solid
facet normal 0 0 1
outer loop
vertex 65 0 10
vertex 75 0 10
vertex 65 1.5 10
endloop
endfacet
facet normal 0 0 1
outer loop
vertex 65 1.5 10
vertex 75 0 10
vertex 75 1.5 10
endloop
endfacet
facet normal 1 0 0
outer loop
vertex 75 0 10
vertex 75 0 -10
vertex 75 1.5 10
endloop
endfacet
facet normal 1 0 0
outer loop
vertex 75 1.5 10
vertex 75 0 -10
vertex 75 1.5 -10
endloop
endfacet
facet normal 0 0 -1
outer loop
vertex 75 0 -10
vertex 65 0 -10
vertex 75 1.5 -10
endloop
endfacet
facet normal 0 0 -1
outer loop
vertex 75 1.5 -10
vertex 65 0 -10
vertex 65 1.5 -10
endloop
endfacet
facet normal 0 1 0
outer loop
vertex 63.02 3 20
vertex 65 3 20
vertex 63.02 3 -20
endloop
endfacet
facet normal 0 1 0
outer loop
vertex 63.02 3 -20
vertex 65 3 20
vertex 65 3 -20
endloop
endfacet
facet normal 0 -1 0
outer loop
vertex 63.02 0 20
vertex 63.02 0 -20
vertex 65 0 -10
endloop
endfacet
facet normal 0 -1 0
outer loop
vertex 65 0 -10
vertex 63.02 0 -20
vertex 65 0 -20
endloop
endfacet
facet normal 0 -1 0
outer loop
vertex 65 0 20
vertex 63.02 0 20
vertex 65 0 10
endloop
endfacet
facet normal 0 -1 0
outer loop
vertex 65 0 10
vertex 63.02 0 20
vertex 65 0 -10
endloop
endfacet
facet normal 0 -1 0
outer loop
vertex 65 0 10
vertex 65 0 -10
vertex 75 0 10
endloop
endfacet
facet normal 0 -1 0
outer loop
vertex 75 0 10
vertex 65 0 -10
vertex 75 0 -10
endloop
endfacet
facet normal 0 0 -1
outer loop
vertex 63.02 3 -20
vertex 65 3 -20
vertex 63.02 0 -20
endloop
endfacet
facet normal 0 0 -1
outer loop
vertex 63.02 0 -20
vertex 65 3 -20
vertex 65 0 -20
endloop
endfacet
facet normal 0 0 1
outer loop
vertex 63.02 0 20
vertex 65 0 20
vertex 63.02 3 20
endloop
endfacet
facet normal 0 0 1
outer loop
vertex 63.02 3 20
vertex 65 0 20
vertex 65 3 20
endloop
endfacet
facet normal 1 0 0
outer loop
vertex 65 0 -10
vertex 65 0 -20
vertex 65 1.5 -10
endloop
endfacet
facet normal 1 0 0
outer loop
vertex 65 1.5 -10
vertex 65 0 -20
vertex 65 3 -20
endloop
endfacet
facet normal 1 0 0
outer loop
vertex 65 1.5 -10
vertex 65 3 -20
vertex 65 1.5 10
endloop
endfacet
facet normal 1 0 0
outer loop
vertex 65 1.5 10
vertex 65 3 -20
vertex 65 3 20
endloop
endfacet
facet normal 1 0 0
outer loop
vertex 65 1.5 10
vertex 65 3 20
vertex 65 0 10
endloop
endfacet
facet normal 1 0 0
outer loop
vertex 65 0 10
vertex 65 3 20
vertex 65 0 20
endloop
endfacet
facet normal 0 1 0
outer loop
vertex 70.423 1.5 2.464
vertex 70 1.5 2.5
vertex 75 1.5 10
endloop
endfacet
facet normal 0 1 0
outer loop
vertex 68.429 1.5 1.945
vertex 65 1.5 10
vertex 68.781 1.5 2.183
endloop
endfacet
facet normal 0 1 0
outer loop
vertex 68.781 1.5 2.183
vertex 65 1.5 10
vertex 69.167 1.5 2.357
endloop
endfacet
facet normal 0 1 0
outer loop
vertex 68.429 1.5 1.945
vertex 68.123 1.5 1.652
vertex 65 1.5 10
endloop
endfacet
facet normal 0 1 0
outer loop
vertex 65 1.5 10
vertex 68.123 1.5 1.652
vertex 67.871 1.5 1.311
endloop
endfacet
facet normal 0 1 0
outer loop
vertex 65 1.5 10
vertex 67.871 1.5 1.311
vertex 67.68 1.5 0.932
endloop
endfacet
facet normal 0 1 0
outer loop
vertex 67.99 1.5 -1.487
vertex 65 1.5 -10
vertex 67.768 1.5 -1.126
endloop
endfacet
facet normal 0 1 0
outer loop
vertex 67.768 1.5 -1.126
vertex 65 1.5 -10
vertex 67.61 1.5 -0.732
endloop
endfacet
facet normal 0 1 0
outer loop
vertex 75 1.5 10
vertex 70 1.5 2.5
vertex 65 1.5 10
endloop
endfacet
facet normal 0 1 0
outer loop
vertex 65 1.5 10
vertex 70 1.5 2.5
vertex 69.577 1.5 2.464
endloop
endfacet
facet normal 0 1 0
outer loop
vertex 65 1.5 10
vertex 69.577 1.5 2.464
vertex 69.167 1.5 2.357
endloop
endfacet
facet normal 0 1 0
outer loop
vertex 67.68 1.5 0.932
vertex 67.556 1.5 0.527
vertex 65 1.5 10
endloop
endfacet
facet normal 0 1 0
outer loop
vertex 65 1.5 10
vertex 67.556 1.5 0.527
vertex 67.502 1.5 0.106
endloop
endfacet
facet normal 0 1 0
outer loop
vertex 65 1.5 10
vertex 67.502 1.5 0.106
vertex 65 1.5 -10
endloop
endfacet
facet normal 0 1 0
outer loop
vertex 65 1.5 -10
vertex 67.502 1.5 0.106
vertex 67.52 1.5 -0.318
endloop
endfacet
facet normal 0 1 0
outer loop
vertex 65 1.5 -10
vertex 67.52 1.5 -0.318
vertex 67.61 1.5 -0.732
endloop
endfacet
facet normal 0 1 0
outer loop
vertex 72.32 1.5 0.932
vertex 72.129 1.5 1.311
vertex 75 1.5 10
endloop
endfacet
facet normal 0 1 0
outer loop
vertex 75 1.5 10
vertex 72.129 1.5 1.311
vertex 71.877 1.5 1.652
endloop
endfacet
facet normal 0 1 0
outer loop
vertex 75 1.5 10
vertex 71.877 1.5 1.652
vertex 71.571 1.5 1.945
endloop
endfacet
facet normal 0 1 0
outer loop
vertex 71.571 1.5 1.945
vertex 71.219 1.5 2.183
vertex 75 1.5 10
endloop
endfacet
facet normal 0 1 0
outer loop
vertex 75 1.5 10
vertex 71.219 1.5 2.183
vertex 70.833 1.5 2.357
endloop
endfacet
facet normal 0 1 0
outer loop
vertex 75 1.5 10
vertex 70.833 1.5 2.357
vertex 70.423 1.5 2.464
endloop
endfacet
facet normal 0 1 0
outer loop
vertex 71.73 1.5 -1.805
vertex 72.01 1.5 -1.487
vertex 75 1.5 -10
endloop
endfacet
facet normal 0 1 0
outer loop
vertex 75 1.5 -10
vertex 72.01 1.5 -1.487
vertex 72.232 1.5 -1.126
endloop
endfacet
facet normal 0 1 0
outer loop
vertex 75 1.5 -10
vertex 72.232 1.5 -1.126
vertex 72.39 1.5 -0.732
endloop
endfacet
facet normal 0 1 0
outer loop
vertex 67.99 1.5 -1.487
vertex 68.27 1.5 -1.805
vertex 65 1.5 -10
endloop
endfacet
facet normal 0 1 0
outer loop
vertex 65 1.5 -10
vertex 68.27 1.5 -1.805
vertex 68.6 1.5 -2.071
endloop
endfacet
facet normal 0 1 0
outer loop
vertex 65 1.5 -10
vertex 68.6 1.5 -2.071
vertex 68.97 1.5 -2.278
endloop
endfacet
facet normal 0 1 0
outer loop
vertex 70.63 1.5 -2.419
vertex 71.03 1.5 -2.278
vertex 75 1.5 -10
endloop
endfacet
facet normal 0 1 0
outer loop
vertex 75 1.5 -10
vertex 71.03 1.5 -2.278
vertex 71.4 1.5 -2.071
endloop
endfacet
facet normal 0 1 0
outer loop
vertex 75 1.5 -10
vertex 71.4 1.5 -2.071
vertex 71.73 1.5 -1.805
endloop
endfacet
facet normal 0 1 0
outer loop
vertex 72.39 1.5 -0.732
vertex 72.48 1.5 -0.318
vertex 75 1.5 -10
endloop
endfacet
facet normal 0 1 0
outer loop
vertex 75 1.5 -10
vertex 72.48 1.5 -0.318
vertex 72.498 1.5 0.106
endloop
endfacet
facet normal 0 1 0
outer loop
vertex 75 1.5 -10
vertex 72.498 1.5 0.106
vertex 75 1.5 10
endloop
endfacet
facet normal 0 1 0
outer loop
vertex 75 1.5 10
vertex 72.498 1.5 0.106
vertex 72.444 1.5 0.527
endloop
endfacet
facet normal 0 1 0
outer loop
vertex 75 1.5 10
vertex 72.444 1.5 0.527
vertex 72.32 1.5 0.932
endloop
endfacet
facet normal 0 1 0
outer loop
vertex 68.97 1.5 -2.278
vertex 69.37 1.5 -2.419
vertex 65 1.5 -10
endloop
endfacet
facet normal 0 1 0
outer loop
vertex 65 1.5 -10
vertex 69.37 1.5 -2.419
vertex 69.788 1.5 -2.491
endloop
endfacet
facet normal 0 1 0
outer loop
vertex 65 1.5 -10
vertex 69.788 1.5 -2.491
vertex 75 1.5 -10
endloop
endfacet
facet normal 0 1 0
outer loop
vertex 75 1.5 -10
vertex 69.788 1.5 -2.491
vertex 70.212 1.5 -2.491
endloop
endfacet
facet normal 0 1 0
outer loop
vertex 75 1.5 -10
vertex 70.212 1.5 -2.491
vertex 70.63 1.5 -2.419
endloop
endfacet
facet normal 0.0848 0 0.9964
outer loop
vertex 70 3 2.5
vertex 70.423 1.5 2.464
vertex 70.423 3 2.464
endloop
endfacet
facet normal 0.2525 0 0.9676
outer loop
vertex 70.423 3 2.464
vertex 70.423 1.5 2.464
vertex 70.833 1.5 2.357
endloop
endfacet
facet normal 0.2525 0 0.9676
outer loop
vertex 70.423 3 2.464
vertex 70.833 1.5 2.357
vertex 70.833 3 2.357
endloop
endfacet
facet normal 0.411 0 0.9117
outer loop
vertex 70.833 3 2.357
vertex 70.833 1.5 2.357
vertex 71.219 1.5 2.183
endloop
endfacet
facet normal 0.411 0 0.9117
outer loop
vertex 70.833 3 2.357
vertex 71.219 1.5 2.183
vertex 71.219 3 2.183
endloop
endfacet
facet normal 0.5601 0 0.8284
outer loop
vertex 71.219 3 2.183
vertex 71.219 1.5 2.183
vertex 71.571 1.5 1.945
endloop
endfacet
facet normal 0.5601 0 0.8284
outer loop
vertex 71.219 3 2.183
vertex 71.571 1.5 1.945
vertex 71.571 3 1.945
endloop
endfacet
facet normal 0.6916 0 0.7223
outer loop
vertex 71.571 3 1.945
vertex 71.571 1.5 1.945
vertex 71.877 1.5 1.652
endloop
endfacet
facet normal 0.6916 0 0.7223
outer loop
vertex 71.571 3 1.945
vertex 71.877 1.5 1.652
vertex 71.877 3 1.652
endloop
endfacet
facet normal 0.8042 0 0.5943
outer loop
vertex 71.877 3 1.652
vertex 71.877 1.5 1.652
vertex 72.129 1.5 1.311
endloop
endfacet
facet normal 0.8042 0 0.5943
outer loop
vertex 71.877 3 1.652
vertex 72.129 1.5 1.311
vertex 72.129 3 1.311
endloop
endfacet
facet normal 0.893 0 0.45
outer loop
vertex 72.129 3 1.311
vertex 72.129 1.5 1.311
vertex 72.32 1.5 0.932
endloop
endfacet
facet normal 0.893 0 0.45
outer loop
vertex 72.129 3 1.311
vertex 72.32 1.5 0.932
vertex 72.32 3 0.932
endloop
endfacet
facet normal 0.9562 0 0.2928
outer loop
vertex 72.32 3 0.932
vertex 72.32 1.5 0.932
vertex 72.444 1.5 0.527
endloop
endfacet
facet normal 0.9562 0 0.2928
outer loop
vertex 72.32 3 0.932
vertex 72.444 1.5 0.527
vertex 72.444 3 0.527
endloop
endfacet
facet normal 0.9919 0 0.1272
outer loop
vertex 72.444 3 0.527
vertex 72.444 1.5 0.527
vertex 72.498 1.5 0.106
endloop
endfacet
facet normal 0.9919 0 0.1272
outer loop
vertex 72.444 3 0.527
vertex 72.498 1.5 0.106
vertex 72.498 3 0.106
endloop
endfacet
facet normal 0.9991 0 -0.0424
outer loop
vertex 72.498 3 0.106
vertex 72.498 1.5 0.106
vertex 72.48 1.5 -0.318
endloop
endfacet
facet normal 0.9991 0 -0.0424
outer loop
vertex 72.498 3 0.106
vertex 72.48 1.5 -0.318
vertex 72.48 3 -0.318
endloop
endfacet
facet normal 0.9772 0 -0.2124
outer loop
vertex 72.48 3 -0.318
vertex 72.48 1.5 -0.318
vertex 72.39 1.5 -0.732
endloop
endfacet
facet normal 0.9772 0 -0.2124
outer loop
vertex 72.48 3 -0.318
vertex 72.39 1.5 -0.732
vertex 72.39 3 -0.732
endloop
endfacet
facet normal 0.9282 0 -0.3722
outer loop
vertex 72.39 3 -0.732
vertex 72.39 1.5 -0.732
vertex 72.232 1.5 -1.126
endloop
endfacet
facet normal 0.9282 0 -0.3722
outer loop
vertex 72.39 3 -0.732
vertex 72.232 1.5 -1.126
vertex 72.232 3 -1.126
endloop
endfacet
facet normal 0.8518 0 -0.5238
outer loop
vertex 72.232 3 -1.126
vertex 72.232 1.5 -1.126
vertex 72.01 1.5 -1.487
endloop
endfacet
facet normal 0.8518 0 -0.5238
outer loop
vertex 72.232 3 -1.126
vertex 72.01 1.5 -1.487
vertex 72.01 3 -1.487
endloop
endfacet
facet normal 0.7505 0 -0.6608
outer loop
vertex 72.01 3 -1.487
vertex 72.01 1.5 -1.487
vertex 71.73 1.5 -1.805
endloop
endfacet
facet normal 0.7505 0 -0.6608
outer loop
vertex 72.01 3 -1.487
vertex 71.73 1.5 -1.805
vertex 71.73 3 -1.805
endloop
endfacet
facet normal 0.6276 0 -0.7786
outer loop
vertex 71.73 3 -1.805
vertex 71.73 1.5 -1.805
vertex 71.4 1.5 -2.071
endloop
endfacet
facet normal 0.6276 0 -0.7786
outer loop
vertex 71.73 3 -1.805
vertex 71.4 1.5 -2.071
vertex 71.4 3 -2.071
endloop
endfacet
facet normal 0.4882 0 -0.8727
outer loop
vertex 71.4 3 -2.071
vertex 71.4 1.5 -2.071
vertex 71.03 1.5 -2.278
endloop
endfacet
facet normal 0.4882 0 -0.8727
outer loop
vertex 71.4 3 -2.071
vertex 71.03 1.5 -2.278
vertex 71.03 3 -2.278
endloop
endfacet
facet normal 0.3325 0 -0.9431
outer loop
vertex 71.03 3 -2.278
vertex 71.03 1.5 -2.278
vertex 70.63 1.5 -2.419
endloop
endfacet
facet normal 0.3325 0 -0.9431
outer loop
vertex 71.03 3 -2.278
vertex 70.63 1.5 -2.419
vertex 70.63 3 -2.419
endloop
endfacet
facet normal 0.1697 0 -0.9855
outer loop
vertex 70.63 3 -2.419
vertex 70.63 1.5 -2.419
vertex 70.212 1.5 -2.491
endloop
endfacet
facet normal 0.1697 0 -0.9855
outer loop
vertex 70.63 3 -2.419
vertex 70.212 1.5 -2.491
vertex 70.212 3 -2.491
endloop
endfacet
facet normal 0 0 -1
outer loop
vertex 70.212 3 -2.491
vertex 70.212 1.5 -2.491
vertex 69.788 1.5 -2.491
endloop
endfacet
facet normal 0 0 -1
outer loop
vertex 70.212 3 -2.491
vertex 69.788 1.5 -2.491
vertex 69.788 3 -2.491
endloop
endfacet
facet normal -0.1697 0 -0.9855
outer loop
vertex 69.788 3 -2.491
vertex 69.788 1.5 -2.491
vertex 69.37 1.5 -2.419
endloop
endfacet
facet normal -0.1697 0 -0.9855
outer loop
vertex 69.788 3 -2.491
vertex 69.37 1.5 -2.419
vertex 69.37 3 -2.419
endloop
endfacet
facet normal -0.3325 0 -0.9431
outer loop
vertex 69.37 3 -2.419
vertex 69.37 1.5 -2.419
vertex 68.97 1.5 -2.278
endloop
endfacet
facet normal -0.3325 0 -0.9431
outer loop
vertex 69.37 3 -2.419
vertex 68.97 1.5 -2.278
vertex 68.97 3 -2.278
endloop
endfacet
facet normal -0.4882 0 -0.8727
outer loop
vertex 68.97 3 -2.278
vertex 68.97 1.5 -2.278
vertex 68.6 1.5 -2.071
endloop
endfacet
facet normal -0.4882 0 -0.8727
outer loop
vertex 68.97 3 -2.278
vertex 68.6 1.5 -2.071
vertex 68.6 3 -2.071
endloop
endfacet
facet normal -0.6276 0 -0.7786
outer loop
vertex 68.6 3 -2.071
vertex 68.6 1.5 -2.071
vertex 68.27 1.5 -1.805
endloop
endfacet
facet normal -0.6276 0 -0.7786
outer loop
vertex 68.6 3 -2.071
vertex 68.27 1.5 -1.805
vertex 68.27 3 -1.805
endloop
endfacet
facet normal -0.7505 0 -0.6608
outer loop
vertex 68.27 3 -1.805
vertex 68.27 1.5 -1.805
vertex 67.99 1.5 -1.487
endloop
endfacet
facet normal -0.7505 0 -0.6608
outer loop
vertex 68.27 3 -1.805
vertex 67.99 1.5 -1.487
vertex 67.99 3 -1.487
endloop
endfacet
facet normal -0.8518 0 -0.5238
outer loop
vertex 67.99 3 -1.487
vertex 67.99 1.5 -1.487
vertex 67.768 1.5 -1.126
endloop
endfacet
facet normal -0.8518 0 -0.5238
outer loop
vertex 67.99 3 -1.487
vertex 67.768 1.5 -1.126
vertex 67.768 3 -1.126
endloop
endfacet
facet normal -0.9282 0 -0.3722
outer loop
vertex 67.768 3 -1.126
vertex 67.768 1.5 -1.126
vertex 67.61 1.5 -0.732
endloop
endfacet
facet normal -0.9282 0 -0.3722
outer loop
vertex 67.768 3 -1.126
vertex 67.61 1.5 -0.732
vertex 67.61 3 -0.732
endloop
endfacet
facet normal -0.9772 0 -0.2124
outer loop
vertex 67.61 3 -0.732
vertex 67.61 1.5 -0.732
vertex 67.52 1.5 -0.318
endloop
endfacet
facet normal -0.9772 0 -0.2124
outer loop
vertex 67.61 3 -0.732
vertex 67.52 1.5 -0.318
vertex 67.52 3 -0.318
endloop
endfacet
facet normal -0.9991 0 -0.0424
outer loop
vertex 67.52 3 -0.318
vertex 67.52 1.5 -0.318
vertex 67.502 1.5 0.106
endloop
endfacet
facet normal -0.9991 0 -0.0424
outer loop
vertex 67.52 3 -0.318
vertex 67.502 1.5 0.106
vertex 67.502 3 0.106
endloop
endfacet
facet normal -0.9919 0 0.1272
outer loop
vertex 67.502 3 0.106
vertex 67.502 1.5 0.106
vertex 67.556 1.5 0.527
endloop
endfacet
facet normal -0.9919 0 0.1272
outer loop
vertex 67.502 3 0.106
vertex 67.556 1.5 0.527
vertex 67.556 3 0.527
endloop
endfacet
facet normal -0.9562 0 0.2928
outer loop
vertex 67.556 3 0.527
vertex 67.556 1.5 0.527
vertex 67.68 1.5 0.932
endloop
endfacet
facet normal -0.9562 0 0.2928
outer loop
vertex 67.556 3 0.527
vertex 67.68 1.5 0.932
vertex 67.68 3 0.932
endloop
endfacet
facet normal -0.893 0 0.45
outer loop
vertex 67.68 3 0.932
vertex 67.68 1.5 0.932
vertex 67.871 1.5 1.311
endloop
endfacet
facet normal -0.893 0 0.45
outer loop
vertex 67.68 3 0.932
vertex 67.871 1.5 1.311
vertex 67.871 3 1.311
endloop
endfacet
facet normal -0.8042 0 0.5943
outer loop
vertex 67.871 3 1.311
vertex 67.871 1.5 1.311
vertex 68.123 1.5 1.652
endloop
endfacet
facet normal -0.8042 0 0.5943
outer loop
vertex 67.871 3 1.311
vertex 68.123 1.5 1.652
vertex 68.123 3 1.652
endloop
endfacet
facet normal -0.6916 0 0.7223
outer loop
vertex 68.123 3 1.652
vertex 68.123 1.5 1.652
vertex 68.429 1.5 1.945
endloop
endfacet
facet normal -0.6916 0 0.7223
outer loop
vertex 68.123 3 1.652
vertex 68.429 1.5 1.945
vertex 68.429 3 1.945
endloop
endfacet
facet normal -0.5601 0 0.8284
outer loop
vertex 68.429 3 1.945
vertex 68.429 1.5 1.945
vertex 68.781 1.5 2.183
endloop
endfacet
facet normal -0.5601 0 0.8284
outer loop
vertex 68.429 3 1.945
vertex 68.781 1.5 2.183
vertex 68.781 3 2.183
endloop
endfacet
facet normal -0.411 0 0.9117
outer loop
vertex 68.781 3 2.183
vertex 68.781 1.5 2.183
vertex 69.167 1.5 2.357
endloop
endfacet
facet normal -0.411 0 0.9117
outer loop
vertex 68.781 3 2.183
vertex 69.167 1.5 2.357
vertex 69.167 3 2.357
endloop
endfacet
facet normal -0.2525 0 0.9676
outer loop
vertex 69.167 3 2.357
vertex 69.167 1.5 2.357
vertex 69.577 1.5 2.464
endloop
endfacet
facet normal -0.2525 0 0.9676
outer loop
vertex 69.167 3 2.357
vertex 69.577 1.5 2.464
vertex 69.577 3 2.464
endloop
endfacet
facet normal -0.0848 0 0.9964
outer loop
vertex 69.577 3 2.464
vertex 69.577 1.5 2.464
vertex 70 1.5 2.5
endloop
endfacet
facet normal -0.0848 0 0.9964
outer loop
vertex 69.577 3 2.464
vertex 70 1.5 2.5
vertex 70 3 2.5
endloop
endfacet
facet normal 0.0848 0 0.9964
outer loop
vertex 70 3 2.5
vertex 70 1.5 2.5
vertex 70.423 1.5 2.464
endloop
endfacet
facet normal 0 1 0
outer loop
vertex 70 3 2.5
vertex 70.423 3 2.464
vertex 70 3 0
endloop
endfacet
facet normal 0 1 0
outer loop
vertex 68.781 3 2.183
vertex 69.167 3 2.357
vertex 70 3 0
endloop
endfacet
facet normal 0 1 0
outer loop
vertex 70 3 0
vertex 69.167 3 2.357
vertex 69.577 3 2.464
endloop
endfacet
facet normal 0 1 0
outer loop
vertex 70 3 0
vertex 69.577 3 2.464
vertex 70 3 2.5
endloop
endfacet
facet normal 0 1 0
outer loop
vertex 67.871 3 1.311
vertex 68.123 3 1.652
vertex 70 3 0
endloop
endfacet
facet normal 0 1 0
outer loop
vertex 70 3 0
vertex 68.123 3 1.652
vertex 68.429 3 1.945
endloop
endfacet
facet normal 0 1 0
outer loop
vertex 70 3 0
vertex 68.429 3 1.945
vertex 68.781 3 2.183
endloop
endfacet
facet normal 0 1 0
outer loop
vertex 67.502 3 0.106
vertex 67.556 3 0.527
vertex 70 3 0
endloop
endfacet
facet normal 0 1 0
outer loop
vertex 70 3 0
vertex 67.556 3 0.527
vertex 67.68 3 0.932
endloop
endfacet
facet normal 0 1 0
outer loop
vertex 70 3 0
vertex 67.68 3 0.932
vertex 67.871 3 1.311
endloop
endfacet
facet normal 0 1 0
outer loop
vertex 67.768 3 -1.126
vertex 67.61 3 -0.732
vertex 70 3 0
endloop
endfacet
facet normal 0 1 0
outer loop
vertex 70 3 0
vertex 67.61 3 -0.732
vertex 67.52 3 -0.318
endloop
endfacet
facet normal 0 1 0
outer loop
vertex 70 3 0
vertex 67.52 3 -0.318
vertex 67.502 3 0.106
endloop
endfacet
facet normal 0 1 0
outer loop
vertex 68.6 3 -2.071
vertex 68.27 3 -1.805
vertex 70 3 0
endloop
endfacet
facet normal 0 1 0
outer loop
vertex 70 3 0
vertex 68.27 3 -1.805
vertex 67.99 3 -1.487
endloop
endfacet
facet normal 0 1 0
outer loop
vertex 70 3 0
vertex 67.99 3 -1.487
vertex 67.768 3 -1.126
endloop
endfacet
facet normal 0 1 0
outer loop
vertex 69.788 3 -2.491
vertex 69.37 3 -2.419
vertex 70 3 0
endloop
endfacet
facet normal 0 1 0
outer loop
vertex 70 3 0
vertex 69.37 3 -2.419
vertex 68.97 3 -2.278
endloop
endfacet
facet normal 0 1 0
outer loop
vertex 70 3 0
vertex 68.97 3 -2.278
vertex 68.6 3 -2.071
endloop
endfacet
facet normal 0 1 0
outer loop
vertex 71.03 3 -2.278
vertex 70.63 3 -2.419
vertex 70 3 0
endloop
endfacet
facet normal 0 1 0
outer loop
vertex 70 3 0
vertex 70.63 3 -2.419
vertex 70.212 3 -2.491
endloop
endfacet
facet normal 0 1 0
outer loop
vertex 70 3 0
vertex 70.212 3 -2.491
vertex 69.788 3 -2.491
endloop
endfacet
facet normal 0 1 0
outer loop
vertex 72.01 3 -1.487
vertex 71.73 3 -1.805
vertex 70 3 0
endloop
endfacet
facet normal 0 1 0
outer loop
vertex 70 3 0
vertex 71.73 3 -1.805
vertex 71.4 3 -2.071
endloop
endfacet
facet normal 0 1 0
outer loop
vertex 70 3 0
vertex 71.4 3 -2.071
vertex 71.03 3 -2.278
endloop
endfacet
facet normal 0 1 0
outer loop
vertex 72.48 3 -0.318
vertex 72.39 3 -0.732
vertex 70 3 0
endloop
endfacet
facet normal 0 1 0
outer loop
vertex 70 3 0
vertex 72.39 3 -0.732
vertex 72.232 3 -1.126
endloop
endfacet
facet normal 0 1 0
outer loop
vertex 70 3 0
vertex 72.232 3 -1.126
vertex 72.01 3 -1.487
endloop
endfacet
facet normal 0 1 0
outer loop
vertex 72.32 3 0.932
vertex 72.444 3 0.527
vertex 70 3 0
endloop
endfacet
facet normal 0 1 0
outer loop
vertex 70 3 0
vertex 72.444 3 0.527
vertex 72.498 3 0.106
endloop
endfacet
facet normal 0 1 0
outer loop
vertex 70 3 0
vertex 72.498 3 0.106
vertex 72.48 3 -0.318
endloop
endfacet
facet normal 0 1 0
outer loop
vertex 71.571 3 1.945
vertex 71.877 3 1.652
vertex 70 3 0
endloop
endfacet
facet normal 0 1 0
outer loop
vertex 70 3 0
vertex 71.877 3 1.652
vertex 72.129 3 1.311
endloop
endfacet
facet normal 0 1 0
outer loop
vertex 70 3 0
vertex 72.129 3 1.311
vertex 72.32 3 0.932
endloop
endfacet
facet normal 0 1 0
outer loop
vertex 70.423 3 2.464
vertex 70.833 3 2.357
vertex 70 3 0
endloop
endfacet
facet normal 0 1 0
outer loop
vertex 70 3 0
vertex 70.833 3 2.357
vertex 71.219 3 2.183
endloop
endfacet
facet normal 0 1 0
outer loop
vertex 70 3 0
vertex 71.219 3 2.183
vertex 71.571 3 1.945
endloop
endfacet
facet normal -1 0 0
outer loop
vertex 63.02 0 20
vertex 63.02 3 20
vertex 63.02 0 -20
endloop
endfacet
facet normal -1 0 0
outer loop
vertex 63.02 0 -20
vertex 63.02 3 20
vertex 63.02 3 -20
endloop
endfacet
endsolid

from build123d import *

# Parameters (mm, degrees)
CROQUIS1_R                 = 11
CROQUIS1_R_2               = 2
CROQUIS1_W                 = 30
CROQUIS1_H                 = 3
SALIENTE_EXTRUIR1_DEPTH    = 3
CROQUIS2_R                 = 13
CROQUIS2_R_2               = 11
SALIENTE_EXTRUIR2_DEPTH    = 4
CROQUIS3_R                 = 13
CROQUIS3_R_2               = 9
SALIENTE_EXTRUIR3_DEPTH    = 2
CHAFL_N1_SIZE              = 2
CHAFL_N2_SIZE              = 10
CROQUIS6_W                 = 10
CROQUIS6_H                 = 20
CROQUIS6_R                 = 2.5
CORTAR_EXTRUIR2_DEPTH      = 1.5
CORTAR_EXTRUIR3_DEPTH      = 10
CORTAR_EXTRUIR3_DEPTH_BACK = 10
CROQUIS7_OUTSIDE_W         = 171.176
CROQUIS7_OUTSIDE_H         = 71.176
CROQUIS7_OUTSIDE_W_2       = 13.478659513
CROQUIS7_OUTSIDE_H_2       = 41.596343219


with BuildPart() as part:
    # Croquis1 → Saliente-Extruir1 (new body)
    with BuildSketch(Plane(origin=(0, 0, 0), x_dir=(1, 0, 0), z_dir=(0, 1, 0))):
        Polygon((-65, -20), (65, -20), (65, -10), (75, -10), (75, 10), (65, 10), (65, 20), (-65, 20), align=None)
        with Locations((-50.129942902, 0)):
            Circle(CROQUIS1_R, mode=Mode.SUBTRACT)
        with Locations((-28.595127909, 0)):
            Circle(CROQUIS1_R_2, mode=Mode.SUBTRACT)
        with Locations((-13.595127909, 0)):
            Circle(CROQUIS1_R_2, mode=Mode.SUBTRACT)
        with Locations((50, 0)):
            Circle(CROQUIS1_R_2, mode=Mode.SUBTRACT)
        with Locations((25, 11)):
            Rectangle(CROQUIS1_W, CROQUIS1_H, mode=Mode.SUBTRACT)
        with Locations((25, -11)):
            Rectangle(CROQUIS1_W, CROQUIS1_H, mode=Mode.SUBTRACT)
    extrude(amount=SALIENTE_EXTRUIR1_DEPTH)

    # Croquis2 → Saliente-Extruir2 (add)
    with BuildSketch(Plane(origin=(0, 3, 0), x_dir=(1, 0, 0), z_dir=(0, 1, 0))):
        with Locations((-50.129942902, 0)):
            Circle(CROQUIS2_R)
        with Locations((-50.129942902, 0)):
            Circle(CROQUIS2_R_2, mode=Mode.SUBTRACT)
    extrude(amount=SALIENTE_EXTRUIR2_DEPTH)

    # Croquis3 → Saliente-Extruir3 (add)
    with BuildSketch(Plane(origin=(0, 7, 0), x_dir=(1, 0, 0), z_dir=(0, 1, 0))):
        with Locations((-50.129942902, 0)):
            Circle(CROQUIS3_R)
        with Locations((-50.129942902, 0)):
            Circle(CROQUIS3_R_2, mode=Mode.SUBTRACT)
    extrude(amount=SALIENTE_EXTRUIR3_DEPTH)

    # Chaflán1
    chafl_n1_edges = [part.edges().sort_by_distance(p)[0] for p in [
        (-63.129942902, 9, 0),
    ]]
    chamfer(chafl_n1_edges, length=CHAFL_N1_SIZE)

    # Chaflán2
    chafl_n2_edges = [part.edges().sort_by_distance(p)[0] for p in [
        (-65, 1.5, 20),
        (-65, 1.5, -20),
    ]]
    chamfer(chafl_n2_edges, length=CHAFL_N2_SIZE)

    # Croquis6 → Cortar-Extruir2 (cut)
    with BuildSketch(Plane(origin=(0, 3, 0), x_dir=(1, 0, 0), z_dir=(0, 1, 0))):
        with Locations((70, 0)):
            Rectangle(CROQUIS6_W, CROQUIS6_H)
        with Locations((70, 0)):
            Circle(CROQUIS6_R, mode=Mode.SUBTRACT)
    extrude(amount=-CORTAR_EXTRUIR2_DEPTH, mode=Mode.SUBTRACT)

    # Croquis7 outside → Cortar-Extruir3 (cut, two sides: drawn at the far end of the back side and taken through both)
    with BuildSketch(Plane(origin=(0, 3, 0), x_dir=(1, 0, 0), z_dir=(0, 1, 0)).offset(-CORTAR_EXTRUIR3_DEPTH_BACK)):
        with Locations((5, 0)):
            Rectangle(CROQUIS7_OUTSIDE_W, CROQUIS7_OUTSIDE_H)
        with Locations((69.759812965, -0.79817161)):
            Rectangle(CROQUIS7_OUTSIDE_W_2, CROQUIS7_OUTSIDE_H_2, mode=Mode.SUBTRACT)
    extrude(amount=CORTAR_EXTRUIR3_DEPTH + CORTAR_EXTRUIR3_DEPTH_BACK, mode=Mode.SUBTRACT)


solid = part.part
